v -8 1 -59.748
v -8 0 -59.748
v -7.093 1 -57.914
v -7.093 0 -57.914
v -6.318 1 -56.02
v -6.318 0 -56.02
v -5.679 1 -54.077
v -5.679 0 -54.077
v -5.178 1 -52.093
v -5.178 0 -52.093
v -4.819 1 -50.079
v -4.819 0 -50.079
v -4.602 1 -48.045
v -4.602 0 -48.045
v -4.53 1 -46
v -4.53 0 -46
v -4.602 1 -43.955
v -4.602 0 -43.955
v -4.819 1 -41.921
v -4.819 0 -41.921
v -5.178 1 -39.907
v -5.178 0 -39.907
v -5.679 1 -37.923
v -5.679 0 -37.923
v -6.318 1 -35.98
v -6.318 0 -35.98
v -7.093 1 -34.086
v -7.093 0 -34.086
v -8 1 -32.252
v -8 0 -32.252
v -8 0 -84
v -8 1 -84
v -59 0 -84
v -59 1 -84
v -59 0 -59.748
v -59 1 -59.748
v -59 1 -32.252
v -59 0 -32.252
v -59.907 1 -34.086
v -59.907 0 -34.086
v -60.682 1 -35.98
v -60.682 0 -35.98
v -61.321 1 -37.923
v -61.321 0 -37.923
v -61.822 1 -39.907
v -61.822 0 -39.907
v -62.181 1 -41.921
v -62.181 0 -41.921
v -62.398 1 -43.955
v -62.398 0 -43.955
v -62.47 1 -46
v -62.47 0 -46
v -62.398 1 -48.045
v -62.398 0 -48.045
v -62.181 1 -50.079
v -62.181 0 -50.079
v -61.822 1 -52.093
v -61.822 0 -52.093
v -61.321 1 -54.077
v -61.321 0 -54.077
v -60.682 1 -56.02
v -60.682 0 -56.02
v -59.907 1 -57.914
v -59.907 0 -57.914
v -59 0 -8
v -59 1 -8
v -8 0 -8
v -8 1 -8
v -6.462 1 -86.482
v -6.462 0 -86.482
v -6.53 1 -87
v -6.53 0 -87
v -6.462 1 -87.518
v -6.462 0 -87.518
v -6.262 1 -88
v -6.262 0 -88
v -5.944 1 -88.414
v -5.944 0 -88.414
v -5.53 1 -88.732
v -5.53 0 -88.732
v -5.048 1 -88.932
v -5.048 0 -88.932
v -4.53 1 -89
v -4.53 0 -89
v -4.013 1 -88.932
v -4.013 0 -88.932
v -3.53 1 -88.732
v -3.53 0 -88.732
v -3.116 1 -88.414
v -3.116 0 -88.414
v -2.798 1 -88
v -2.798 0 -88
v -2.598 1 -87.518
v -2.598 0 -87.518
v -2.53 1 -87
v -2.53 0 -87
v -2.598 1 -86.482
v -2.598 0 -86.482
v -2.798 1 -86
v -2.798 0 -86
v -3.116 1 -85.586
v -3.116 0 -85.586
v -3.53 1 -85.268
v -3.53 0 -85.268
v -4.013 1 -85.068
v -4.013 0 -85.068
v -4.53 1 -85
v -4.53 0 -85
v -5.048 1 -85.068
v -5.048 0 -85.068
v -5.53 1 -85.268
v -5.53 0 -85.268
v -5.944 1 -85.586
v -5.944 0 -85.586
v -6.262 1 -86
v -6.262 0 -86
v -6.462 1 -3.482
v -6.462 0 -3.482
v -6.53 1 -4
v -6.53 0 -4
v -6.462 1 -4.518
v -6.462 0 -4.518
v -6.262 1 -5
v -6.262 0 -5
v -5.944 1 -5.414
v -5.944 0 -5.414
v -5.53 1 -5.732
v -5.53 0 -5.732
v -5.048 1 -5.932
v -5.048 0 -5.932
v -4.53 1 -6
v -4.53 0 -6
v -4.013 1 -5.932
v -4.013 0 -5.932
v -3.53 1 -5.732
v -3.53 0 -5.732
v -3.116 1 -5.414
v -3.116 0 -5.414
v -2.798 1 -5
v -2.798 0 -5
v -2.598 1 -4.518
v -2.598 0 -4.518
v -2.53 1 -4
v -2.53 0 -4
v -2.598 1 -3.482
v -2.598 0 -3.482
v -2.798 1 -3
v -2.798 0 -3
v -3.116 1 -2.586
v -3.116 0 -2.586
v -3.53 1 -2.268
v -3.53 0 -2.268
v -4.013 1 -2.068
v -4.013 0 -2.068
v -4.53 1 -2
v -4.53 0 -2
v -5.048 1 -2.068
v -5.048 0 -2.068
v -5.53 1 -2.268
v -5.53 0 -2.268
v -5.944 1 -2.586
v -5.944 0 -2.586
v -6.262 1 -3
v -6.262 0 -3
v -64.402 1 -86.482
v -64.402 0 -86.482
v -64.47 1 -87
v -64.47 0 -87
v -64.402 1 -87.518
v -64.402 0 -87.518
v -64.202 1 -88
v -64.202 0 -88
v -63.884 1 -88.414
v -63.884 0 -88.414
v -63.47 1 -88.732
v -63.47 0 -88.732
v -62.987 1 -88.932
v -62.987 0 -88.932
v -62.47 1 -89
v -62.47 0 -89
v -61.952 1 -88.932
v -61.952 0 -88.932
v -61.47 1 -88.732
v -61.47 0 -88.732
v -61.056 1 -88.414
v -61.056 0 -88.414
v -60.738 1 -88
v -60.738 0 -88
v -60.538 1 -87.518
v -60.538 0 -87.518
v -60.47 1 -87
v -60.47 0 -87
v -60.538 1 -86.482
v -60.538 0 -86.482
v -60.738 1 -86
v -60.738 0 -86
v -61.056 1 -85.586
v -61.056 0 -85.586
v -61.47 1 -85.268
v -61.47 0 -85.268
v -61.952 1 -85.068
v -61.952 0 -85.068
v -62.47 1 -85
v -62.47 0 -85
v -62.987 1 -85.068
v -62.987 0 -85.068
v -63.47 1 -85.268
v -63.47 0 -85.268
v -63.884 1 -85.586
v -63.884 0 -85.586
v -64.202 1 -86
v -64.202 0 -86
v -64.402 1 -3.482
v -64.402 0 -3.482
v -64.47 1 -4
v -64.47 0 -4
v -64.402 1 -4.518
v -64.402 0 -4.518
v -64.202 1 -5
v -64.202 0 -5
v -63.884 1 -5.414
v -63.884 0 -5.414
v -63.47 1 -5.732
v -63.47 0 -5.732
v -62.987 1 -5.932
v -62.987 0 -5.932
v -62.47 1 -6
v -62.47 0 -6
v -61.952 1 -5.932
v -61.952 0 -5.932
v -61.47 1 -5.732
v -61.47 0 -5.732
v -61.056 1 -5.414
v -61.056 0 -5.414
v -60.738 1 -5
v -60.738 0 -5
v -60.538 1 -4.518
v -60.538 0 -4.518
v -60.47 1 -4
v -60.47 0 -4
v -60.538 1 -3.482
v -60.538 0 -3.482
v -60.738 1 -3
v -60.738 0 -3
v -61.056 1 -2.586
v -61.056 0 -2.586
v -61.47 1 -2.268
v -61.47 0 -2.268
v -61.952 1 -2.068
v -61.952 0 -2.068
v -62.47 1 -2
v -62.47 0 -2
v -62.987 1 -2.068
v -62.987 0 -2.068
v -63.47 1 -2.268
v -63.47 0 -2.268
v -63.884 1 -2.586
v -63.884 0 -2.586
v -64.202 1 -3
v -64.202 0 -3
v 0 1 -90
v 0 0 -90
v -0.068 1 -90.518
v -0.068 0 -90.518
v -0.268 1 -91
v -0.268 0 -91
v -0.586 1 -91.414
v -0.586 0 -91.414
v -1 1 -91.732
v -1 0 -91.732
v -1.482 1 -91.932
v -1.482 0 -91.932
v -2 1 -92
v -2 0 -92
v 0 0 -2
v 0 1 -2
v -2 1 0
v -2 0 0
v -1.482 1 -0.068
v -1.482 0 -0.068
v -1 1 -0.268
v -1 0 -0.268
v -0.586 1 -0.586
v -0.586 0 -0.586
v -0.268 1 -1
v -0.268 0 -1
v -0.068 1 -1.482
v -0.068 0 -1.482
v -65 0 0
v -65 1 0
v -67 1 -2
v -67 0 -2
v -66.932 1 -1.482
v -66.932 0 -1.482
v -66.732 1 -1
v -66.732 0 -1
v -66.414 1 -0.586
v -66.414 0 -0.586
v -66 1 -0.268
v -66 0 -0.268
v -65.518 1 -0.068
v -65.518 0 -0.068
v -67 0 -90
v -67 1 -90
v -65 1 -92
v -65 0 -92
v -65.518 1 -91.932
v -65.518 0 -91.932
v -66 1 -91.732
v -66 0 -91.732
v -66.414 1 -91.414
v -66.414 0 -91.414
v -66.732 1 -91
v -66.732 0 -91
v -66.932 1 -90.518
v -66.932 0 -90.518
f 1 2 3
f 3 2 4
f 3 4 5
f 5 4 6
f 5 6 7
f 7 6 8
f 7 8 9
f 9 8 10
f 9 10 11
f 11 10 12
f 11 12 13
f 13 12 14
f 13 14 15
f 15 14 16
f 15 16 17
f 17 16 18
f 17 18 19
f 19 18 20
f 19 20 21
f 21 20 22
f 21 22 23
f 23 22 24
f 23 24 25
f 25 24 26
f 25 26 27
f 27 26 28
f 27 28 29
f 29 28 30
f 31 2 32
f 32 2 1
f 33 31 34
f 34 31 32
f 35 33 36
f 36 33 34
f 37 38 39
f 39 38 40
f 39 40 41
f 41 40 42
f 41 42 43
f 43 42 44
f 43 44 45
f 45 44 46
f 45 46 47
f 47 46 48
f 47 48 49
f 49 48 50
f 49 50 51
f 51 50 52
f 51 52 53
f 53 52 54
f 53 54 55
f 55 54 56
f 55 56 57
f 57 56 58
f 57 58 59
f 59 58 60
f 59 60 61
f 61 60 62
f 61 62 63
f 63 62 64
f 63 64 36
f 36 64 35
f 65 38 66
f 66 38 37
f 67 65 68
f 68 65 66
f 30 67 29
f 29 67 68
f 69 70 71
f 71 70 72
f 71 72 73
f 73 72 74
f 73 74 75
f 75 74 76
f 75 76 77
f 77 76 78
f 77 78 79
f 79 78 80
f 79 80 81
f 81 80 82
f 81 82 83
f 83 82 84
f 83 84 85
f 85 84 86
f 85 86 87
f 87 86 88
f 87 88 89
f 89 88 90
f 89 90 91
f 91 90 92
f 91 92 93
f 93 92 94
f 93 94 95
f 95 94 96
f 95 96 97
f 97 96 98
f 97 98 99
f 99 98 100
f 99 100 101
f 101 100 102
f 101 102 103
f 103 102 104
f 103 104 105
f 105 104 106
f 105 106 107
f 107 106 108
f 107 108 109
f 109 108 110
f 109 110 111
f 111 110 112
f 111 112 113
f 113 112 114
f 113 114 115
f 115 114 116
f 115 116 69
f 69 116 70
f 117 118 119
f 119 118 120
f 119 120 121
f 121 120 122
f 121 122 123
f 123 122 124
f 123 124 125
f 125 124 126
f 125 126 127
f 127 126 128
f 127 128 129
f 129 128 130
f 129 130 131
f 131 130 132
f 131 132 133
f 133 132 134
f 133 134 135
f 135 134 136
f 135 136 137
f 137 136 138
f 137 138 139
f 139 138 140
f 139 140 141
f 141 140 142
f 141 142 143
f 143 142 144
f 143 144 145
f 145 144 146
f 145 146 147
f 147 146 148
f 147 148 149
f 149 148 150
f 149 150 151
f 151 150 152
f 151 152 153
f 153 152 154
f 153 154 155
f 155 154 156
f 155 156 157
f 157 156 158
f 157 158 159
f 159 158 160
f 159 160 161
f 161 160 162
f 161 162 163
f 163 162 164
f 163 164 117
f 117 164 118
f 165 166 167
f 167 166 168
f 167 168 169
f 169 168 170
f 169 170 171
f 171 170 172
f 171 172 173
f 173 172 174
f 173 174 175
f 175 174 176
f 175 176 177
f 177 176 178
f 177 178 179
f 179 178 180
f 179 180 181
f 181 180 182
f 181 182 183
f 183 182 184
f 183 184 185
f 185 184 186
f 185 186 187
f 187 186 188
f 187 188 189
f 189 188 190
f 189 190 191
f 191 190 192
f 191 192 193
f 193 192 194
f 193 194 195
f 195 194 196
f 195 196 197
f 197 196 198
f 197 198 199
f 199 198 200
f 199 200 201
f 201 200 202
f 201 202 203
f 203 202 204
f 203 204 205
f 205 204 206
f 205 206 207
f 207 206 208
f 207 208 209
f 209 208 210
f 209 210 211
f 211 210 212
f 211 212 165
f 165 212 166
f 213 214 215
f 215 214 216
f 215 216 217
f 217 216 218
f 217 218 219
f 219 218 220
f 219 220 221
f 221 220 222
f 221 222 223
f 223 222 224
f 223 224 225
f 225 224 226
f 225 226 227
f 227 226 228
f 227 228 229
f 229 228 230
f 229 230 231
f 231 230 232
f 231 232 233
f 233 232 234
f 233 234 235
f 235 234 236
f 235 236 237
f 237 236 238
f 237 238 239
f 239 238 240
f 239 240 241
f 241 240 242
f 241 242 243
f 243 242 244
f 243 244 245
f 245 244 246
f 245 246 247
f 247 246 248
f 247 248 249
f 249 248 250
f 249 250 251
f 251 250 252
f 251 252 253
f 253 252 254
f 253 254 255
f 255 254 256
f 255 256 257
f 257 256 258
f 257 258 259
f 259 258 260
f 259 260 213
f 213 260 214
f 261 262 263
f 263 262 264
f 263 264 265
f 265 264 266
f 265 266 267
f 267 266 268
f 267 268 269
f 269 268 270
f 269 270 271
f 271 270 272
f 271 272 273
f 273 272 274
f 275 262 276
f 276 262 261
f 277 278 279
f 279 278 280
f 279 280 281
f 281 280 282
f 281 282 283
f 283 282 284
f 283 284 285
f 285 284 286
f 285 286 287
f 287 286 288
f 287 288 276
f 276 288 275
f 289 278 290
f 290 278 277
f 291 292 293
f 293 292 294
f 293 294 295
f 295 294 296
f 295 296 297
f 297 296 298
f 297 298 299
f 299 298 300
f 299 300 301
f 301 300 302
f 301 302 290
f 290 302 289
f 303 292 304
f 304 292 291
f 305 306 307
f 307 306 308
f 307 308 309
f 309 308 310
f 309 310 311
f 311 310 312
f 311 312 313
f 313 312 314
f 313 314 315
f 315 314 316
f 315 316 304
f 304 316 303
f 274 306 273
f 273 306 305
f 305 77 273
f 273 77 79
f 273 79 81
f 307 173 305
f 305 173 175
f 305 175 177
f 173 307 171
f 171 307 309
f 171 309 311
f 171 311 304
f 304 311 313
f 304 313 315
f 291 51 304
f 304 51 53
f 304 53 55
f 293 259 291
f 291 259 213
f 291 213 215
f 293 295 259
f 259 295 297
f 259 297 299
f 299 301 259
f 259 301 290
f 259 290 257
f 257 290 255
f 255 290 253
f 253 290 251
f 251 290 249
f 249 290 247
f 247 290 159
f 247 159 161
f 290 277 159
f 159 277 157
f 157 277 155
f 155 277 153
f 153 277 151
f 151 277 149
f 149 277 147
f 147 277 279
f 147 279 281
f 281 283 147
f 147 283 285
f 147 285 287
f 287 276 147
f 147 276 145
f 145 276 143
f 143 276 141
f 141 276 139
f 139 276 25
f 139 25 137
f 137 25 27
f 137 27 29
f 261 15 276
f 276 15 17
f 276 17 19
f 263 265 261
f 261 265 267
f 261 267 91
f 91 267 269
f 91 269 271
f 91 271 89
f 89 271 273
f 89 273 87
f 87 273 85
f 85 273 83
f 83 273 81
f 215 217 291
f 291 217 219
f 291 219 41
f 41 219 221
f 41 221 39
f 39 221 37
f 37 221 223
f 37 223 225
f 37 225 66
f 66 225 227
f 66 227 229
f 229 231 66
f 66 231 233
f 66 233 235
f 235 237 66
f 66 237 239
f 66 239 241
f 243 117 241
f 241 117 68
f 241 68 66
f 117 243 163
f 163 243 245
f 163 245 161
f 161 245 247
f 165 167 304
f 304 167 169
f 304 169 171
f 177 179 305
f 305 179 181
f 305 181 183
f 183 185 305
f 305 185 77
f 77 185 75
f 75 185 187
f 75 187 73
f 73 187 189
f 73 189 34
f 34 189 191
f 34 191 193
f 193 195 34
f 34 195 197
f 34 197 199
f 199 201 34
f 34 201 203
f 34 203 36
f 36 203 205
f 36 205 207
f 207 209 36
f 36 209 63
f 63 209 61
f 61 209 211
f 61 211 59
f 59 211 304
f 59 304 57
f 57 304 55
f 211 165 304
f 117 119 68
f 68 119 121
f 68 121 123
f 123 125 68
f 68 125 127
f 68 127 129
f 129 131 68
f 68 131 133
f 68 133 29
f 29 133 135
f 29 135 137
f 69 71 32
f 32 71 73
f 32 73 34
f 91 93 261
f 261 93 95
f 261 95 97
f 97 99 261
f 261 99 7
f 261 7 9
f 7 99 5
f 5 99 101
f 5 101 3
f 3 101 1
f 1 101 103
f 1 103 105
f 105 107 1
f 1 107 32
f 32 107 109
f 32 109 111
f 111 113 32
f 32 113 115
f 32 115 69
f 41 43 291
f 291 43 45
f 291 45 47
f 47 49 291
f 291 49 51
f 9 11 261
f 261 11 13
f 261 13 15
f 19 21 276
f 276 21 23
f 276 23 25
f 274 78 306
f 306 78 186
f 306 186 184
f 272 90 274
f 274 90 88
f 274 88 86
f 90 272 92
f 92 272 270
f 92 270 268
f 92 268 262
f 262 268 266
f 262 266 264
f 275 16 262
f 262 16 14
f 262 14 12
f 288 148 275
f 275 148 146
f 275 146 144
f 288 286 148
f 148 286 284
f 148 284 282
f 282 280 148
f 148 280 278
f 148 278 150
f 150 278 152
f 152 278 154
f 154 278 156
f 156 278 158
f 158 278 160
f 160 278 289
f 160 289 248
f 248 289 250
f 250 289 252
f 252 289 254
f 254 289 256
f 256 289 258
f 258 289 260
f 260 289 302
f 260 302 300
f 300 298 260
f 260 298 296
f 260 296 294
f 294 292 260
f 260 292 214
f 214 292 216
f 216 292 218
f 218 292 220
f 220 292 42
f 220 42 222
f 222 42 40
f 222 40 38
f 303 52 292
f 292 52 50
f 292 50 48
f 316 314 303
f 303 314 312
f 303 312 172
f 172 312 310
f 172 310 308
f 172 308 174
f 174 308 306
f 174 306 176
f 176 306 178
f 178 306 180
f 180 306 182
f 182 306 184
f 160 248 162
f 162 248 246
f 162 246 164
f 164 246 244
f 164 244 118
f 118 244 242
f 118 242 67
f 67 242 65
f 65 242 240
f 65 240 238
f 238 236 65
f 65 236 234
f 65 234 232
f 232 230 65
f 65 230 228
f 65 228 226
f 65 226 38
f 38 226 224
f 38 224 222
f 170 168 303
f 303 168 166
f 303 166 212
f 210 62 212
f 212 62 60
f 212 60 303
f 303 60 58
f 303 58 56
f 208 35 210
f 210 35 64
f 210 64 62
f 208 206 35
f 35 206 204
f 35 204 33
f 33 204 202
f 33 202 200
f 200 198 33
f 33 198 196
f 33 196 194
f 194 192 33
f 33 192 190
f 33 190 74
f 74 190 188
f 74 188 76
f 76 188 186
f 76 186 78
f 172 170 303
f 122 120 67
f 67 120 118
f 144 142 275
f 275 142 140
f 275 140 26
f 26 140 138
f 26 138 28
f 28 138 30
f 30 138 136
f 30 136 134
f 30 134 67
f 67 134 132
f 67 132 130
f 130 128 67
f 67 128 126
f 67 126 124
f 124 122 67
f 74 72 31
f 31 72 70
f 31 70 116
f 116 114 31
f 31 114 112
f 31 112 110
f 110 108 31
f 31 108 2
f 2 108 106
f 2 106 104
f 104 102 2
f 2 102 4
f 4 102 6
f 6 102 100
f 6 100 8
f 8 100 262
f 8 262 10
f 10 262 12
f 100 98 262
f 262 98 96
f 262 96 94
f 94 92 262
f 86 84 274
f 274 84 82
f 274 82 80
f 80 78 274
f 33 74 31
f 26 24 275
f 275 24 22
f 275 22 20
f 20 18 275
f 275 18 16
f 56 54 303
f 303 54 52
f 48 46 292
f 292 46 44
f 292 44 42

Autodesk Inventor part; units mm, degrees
ref_plane "YZ Plane" through (0, 0, 0) normal (1, 0, 0) x (0, 1, 0)
ref_plane "XZ Plane" through (0, 0, 0) normal (0, 1, 0) x (-1, 0, 0)
ref_plane "XY Plane" through (0, 0, 0) normal (0, 0, 1) x (1, 0, 0)
sketch "Sketch1" plane through (0, 0, 0) normal (0, 1, 0) x (-1, 0, 0)
  line L0 (2, 0) -> (65, 0)
  line L1 (67, -2) -> (67, -90)
  line L2 (65, -92) -> (2, -92)
  line L3 (0, -90) -> (0, -2)
  arc A0 (67, -2) -> (65, 0) centre (65, -2) ccw
  arc A1 (65, -92) -> (67, -90) centre (65, -90) ccw
  arc A2 (0, -90) -> (2, -92) centre (2, -90) ccw
  arc A3 (2, 0) -> (0, -2) centre (2, -2) ccw
  line L4 (8, -8) -> (59, -8)
  line L5 (59, -84) -> (8, -84)
  line L6 (59, -8) -> (59, -32.2523)
  line L7 (59, -59.7477) -> (59, -84)
  line L8 (8, -84) -> (8, -59.7477)
  line L9 (8, -32.2523) -> (8, -8)
  arc A4 (59, -59.7477) -> (59, -32.2523) centre (33.5, -46) ccw
  arc A5 (8, -32.2523) -> (8, -59.7477) centre (33.5, -46) ccw
  circle A6 centre (62.4698, -4) radius 2
  circle A7 centre (62.4698, -87) radius 2
  circle A8 centre (4.5302, -4) radius 2
  circle A9 centre (4.5302, -87) radius 2
  point P0 (0, 0)
  point P1 (67, -92)
  point P2 (67, 0)
  point P3 (0, -92)
  dimension "d40" = 67
  dimension "d41" = 92
  dimension "d42" = 2
  dimension "d43" = 51
  dimension "d44" = 76
extrude "Extrusion9" add sketch "Sketch1" along normal blind 1
